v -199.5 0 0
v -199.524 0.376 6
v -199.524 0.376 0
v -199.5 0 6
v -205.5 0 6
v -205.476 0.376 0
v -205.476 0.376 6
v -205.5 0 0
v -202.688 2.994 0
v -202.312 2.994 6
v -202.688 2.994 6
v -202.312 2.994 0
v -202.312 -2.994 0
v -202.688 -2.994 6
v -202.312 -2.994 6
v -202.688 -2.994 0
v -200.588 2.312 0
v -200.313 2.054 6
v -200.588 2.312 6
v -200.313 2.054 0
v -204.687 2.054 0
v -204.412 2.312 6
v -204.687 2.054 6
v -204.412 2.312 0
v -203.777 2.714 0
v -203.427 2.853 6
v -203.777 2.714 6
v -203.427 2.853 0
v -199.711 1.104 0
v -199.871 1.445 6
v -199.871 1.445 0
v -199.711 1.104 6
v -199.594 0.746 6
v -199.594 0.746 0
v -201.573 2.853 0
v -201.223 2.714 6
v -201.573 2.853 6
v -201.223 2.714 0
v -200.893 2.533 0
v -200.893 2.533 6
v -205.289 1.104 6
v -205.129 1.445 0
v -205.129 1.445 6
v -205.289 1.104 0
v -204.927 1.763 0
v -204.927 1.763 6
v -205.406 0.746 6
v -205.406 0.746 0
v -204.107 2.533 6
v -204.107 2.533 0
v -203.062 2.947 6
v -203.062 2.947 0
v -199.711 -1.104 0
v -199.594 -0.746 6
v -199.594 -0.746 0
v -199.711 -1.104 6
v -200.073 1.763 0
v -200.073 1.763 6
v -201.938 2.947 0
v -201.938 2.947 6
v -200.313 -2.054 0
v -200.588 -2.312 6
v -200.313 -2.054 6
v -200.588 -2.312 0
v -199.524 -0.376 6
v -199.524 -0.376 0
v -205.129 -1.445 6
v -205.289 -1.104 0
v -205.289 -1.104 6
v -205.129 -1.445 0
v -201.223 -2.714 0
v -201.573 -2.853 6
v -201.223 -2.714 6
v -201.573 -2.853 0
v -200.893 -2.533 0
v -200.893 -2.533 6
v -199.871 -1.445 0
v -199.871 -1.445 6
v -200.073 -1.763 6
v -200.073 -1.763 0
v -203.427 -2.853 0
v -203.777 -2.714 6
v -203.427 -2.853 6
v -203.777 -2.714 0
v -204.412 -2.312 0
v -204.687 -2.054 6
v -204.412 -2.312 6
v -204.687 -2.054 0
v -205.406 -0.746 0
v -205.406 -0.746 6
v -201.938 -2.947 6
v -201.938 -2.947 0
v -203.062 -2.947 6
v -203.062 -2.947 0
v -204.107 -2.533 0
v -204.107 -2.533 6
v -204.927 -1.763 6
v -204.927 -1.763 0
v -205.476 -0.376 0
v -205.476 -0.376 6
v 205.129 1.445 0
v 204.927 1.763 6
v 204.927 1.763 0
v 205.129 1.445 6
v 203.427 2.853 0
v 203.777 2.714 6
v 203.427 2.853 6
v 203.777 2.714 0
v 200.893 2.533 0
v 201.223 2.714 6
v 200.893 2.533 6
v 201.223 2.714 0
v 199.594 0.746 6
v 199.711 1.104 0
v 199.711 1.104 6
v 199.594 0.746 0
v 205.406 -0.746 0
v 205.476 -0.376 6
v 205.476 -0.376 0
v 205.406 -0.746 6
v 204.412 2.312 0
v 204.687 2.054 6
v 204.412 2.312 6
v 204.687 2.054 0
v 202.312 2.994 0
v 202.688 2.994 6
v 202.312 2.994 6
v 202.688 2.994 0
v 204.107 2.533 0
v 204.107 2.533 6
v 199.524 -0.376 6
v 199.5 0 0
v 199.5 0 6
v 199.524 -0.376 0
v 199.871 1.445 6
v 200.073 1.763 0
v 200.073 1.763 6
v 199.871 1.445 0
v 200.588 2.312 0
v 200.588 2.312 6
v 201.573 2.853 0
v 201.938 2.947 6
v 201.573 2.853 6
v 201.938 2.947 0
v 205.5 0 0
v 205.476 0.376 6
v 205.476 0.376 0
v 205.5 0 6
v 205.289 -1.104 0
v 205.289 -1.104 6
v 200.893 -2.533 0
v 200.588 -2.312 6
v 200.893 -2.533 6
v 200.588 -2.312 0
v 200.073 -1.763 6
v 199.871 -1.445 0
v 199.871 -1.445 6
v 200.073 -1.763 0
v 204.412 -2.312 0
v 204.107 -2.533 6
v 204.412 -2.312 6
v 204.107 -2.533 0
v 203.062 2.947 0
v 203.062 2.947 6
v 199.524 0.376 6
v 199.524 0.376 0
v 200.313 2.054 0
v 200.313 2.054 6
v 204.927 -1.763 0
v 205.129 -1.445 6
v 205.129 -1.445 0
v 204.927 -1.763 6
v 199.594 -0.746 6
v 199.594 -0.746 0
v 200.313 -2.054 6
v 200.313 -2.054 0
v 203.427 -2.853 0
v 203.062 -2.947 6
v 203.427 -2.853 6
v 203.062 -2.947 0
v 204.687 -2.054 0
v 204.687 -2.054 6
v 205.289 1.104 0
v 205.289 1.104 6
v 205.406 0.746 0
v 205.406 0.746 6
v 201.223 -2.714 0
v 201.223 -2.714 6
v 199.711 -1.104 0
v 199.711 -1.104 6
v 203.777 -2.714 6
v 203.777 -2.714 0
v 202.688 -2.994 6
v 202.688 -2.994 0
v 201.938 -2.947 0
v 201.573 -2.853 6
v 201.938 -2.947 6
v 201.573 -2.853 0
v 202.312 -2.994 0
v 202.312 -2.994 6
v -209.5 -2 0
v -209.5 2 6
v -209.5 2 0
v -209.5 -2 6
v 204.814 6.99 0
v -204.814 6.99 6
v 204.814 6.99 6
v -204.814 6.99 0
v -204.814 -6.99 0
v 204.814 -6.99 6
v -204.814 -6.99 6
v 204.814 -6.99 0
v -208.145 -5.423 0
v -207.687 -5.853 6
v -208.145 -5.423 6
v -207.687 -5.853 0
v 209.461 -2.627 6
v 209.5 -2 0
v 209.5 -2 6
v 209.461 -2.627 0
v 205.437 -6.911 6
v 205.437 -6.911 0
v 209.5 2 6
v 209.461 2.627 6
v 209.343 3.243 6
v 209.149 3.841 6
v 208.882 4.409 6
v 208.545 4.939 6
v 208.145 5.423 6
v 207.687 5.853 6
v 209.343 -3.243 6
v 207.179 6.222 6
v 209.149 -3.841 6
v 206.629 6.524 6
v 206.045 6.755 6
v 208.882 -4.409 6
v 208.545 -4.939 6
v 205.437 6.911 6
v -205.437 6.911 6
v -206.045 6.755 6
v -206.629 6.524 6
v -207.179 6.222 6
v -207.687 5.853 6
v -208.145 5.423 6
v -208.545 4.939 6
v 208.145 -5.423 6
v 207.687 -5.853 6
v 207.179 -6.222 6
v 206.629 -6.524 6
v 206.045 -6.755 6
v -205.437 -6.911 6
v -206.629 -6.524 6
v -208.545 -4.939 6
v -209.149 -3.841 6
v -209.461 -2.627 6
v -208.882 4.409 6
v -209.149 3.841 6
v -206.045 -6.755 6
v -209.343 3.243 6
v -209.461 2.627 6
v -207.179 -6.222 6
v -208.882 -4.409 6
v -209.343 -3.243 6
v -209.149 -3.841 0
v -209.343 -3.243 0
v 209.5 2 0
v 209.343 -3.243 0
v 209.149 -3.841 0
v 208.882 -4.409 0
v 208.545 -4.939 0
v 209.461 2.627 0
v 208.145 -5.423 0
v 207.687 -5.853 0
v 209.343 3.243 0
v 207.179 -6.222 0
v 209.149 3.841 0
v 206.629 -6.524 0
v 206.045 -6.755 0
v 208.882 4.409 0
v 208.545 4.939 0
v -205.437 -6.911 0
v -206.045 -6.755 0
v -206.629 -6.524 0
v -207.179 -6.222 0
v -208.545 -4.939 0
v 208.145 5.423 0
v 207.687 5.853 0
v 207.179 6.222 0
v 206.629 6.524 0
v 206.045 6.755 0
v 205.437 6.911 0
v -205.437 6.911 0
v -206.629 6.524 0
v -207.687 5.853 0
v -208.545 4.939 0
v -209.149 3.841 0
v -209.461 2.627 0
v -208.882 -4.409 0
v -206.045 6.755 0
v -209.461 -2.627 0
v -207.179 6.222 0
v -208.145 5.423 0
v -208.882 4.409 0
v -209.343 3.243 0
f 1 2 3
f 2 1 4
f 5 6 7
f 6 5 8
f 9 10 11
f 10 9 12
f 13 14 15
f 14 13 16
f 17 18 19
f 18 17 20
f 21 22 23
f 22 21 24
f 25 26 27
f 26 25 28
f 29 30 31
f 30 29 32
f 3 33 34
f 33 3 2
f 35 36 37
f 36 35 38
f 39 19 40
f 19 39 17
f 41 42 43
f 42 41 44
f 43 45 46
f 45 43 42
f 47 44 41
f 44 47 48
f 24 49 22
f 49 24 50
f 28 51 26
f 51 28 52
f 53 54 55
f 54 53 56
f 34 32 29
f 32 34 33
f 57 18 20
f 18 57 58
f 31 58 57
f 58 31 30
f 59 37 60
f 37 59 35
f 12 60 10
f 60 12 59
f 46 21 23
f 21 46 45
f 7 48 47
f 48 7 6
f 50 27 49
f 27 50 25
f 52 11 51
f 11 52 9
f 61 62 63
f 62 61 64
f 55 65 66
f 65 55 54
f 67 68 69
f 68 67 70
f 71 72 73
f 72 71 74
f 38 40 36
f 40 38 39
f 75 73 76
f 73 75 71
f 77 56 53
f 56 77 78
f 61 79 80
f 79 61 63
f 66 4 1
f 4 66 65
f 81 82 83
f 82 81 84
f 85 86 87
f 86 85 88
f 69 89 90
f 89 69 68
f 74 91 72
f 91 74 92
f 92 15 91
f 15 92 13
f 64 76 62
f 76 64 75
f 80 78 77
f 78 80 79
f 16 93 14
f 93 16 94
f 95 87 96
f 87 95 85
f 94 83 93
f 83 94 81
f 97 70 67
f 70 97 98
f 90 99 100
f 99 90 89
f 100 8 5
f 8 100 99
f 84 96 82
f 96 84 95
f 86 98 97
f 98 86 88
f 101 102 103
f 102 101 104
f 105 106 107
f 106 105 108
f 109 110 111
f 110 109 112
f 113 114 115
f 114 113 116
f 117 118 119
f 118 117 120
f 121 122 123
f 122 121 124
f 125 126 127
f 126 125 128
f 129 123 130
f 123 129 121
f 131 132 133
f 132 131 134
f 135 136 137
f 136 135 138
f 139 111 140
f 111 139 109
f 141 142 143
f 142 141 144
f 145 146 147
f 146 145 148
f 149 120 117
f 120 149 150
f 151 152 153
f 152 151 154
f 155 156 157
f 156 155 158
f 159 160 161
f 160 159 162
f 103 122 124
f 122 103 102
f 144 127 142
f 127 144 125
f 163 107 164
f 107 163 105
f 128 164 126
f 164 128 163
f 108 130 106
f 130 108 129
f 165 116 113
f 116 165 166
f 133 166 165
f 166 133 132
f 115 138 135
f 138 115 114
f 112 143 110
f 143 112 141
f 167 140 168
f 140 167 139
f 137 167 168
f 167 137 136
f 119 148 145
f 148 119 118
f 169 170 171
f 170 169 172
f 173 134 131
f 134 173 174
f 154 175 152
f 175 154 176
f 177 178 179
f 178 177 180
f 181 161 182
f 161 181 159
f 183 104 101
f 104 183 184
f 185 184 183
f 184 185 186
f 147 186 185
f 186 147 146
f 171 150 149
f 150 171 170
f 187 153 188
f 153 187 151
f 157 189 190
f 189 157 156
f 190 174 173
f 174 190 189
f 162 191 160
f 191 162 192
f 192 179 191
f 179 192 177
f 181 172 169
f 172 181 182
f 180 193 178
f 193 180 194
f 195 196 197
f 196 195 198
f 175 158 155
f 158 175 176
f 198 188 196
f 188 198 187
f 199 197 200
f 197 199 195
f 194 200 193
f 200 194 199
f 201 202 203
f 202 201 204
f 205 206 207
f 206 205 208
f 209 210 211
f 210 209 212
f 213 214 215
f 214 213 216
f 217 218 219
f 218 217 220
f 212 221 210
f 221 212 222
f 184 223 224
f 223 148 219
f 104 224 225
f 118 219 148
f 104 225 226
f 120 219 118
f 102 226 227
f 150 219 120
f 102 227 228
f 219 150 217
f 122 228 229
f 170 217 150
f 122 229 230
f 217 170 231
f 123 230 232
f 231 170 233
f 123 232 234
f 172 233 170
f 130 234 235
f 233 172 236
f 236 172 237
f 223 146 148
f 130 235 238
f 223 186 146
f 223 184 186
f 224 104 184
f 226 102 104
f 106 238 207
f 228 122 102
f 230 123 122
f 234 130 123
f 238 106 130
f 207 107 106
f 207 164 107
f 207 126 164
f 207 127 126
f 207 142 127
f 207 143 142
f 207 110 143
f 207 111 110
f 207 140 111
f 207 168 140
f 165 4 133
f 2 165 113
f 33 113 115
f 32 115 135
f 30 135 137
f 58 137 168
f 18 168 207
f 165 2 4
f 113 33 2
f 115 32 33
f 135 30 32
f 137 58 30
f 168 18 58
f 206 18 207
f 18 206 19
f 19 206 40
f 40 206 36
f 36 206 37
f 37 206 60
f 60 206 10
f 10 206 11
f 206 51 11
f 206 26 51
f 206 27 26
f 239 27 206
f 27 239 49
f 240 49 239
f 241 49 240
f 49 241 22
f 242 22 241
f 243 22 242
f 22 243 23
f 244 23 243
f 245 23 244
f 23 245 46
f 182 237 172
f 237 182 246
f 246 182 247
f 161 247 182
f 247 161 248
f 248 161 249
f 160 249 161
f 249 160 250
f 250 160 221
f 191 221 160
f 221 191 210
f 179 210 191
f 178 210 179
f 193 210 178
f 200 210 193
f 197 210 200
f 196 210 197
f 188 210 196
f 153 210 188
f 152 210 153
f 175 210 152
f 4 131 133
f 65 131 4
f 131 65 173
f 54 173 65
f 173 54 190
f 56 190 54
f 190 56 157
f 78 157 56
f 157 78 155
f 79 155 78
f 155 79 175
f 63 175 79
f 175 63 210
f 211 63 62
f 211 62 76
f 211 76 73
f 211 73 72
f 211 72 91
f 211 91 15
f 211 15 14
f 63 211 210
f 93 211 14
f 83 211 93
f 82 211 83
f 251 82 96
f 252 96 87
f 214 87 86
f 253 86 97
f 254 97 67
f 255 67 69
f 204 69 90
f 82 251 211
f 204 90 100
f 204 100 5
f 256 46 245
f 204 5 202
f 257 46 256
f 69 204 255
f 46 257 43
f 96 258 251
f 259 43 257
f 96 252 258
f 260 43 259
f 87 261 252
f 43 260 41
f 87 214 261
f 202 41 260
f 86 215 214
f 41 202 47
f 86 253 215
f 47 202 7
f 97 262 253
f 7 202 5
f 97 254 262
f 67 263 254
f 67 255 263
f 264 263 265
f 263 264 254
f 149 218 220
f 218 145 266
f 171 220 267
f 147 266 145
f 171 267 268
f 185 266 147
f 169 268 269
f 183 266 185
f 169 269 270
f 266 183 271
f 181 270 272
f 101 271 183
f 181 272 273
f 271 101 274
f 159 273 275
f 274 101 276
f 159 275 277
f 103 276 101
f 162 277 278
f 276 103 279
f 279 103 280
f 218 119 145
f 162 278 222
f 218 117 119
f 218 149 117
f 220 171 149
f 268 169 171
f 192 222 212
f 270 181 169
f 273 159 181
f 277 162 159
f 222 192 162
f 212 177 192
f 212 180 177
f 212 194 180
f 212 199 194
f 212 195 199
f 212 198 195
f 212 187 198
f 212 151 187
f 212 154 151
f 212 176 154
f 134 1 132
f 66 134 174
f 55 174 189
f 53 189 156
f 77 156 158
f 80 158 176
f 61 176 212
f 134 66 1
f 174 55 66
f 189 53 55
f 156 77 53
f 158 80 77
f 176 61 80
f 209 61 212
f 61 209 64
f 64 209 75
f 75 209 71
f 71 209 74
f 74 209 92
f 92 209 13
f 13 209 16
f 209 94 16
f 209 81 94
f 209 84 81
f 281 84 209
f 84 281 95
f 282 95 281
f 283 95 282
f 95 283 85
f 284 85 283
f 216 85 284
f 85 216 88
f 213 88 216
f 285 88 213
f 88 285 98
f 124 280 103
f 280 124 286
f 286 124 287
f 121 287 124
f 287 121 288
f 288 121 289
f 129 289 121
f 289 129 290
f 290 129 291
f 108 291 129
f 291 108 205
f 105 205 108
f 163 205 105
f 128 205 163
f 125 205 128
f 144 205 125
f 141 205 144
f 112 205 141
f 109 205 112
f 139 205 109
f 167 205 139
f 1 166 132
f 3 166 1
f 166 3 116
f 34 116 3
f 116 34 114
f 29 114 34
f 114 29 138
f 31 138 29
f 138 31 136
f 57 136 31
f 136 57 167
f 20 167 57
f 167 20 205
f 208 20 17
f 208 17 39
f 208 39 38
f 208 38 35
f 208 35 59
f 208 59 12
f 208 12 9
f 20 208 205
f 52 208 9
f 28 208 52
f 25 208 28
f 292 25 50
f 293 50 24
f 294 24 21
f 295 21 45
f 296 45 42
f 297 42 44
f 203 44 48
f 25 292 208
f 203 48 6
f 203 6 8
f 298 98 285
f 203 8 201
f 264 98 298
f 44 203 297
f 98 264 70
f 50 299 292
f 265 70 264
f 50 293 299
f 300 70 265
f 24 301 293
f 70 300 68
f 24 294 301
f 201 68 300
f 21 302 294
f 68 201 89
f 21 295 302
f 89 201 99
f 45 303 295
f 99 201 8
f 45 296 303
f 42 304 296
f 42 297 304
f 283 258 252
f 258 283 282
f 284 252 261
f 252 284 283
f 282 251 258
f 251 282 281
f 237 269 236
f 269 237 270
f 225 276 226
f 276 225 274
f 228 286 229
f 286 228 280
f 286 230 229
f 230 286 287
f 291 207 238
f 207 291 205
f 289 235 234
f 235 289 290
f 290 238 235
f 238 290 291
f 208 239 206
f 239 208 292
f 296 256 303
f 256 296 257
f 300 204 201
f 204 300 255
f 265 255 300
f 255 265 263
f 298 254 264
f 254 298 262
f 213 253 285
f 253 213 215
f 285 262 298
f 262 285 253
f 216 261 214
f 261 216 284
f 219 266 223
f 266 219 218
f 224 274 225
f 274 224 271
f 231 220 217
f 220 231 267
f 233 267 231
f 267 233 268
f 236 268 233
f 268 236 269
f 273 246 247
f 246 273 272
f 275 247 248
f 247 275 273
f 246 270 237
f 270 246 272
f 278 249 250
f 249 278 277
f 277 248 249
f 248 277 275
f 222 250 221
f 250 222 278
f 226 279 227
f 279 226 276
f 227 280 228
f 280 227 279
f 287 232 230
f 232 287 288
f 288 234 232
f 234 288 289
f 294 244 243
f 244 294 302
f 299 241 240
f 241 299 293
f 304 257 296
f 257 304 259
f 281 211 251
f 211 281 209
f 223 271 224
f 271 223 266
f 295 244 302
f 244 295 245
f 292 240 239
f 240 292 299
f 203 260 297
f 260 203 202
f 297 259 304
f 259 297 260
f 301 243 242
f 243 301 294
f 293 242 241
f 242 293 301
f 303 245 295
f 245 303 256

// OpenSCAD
$fn = 50;


difference() {
	union() {
		hull() {
			translate(v = [-204.5000000000, 2.0000000000, 0]) {
				cylinder(h = 6, r = 5);
			}
			translate(v = [204.5000000000, 2.0000000000, 0]) {
				cylinder(h = 6, r = 5);
			}
			translate(v = [-204.5000000000, -2.0000000000, 0]) {
				cylinder(h = 6, r = 5);
			}
			translate(v = [204.5000000000, -2.0000000000, 0]) {
				cylinder(h = 6, r = 5);
			}
		}
	}
	union() {
		translate(v = [-202.5000000000, 0.0000000000, -100.0000000000]) {
			cylinder(h = 200, r = 3.0000000000);
		}
		translate(v = [-202.5000000000, 0.0000000000, -100.0000000000]) {
			cylinder(h = 200, r = 3.0000000000);
		}
		translate(v = [202.5000000000, 0.0000000000, -100.0000000000]) {
			cylinder(h = 200, r = 3.0000000000);
		}
		translate(v = [202.5000000000, 0.0000000000, -100.0000000000]) {
			cylinder(h = 200, r = 3.0000000000);
		}
	}
}
